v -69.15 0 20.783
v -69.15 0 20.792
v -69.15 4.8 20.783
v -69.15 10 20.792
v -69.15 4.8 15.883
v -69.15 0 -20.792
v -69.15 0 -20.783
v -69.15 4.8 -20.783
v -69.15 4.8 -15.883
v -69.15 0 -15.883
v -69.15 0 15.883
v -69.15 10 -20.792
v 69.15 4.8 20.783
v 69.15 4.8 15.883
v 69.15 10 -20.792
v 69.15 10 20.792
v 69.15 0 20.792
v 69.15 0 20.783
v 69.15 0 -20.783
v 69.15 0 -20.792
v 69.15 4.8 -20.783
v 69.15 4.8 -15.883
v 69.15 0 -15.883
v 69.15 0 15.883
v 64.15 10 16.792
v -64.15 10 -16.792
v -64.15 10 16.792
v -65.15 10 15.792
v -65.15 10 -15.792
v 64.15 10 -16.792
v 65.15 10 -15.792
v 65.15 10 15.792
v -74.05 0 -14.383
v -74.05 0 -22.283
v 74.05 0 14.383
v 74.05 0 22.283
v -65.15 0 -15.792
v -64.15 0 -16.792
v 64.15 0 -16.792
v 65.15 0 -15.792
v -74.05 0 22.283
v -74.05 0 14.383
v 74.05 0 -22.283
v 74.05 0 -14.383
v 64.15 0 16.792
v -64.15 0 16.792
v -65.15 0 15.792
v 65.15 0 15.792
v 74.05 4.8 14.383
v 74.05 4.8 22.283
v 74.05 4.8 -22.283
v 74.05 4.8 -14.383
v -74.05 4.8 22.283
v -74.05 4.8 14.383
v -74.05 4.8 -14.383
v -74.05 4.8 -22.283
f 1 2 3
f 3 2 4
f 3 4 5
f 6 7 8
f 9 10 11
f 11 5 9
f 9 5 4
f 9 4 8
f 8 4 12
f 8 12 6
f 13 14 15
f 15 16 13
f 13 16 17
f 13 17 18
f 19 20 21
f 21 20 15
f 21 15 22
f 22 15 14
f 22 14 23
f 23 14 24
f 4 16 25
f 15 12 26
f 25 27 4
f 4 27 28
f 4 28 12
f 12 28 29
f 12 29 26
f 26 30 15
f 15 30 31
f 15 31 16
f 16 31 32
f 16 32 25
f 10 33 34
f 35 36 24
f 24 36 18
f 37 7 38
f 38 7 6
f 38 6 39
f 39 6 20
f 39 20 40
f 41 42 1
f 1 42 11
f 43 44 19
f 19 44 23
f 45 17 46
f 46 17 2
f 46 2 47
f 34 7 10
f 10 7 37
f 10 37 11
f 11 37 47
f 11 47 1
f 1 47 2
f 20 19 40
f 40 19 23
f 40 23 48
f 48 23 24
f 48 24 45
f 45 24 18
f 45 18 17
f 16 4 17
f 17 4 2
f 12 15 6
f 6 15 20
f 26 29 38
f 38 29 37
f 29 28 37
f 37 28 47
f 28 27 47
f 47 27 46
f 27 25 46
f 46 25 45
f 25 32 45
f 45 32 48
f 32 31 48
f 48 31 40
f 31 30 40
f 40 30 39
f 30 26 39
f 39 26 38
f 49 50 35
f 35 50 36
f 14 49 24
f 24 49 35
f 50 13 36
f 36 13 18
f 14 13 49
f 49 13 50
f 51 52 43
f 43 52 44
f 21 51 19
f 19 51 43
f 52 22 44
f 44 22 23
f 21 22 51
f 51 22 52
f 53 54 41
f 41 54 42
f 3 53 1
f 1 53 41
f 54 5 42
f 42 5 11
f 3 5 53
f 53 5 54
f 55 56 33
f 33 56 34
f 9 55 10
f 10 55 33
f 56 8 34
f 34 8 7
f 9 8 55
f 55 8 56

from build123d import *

# Parameters (mm, degrees)
SKETCH1_W           = 138.3
SKETCH1_H           = 41.58498921
BOSS_EXTRUDE1_DEPTH = 10
BOSS_EXTRUDE2_DEPTH = 4.8


with BuildPart() as part:
    # Sketch1 → Boss-Extrude1 (new body)
    with BuildSketch(Plane(origin=(0, 0, 0), x_dir=(1, 0, 0), z_dir=(0, 1, 0))):
        Rectangle(SKETCH1_W, SKETCH1_H)
        Polygon((-64.15, 16.792494605), (64.15, 16.792494605), (65.15, 15.792494605), (65.15, -15.792494605), (64.15, -16.792494605), (-64.15, -16.792494605), (-65.15, -15.792494605), (-65.15, 15.792494605), align=None, mode=Mode.SUBTRACT)
    extrude(amount=BOSS_EXTRUDE1_DEPTH)

    # Sketch3 → Boss-Extrude2 (add)
    with BuildSketch(Plane.XZ):
        Polygon((74.05, 22.283333333), (69.15, 20.783333333), (69.15, 15.883333333), (74.05, 14.383333333), align=None)
        Polygon((74.05, -14.383333333), (69.15, -15.883333333), (69.15, -20.783333333), (74.05, -22.283333333), align=None)
        Polygon((-74.05, 22.283333333), (-69.15, 20.783333333), (-69.15, 15.883333333), (-74.05, 14.383333333), align=None)
        Polygon((-74.05, -14.383333333), (-69.15, -15.883333333), (-69.15, -20.783333333), (-74.05, -22.283333333), align=None)
    extrude(amount=-BOSS_EXTRUDE2_DEPTH)


solid = part.part
